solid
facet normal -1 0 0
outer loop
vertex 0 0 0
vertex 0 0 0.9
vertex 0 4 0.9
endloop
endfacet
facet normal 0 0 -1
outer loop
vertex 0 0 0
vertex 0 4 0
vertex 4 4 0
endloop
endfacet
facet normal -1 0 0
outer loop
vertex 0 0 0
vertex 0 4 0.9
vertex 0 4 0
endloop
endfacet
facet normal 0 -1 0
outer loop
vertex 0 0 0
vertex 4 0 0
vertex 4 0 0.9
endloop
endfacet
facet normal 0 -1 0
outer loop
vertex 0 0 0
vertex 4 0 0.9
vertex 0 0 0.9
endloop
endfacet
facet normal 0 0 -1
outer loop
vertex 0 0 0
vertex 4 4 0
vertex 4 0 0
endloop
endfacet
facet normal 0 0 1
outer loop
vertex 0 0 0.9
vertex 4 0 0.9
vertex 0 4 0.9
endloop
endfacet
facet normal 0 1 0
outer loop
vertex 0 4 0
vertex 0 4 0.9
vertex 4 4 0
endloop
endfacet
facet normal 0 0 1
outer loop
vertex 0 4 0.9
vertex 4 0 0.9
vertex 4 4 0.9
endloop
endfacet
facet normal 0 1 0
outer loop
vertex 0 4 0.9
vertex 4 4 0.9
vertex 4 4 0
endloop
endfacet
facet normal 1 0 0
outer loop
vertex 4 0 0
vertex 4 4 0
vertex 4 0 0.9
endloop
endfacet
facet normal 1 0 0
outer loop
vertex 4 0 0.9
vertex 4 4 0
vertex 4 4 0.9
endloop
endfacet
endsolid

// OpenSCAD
/* Warning, this is a very basic generator with a lot of approximation 
input data : [VQFN, 9KX, 4X4X0.9mm, 24, , A, C04-00428A]
generated by com.zoubworld.electronics.cad.model3d.Basic
Date : Sun Feb 15 10:50:48 CET 2026
*/

//body
color("black")
translate([0,0,0])
cube([4.0,4.0,0.9], center=false);
